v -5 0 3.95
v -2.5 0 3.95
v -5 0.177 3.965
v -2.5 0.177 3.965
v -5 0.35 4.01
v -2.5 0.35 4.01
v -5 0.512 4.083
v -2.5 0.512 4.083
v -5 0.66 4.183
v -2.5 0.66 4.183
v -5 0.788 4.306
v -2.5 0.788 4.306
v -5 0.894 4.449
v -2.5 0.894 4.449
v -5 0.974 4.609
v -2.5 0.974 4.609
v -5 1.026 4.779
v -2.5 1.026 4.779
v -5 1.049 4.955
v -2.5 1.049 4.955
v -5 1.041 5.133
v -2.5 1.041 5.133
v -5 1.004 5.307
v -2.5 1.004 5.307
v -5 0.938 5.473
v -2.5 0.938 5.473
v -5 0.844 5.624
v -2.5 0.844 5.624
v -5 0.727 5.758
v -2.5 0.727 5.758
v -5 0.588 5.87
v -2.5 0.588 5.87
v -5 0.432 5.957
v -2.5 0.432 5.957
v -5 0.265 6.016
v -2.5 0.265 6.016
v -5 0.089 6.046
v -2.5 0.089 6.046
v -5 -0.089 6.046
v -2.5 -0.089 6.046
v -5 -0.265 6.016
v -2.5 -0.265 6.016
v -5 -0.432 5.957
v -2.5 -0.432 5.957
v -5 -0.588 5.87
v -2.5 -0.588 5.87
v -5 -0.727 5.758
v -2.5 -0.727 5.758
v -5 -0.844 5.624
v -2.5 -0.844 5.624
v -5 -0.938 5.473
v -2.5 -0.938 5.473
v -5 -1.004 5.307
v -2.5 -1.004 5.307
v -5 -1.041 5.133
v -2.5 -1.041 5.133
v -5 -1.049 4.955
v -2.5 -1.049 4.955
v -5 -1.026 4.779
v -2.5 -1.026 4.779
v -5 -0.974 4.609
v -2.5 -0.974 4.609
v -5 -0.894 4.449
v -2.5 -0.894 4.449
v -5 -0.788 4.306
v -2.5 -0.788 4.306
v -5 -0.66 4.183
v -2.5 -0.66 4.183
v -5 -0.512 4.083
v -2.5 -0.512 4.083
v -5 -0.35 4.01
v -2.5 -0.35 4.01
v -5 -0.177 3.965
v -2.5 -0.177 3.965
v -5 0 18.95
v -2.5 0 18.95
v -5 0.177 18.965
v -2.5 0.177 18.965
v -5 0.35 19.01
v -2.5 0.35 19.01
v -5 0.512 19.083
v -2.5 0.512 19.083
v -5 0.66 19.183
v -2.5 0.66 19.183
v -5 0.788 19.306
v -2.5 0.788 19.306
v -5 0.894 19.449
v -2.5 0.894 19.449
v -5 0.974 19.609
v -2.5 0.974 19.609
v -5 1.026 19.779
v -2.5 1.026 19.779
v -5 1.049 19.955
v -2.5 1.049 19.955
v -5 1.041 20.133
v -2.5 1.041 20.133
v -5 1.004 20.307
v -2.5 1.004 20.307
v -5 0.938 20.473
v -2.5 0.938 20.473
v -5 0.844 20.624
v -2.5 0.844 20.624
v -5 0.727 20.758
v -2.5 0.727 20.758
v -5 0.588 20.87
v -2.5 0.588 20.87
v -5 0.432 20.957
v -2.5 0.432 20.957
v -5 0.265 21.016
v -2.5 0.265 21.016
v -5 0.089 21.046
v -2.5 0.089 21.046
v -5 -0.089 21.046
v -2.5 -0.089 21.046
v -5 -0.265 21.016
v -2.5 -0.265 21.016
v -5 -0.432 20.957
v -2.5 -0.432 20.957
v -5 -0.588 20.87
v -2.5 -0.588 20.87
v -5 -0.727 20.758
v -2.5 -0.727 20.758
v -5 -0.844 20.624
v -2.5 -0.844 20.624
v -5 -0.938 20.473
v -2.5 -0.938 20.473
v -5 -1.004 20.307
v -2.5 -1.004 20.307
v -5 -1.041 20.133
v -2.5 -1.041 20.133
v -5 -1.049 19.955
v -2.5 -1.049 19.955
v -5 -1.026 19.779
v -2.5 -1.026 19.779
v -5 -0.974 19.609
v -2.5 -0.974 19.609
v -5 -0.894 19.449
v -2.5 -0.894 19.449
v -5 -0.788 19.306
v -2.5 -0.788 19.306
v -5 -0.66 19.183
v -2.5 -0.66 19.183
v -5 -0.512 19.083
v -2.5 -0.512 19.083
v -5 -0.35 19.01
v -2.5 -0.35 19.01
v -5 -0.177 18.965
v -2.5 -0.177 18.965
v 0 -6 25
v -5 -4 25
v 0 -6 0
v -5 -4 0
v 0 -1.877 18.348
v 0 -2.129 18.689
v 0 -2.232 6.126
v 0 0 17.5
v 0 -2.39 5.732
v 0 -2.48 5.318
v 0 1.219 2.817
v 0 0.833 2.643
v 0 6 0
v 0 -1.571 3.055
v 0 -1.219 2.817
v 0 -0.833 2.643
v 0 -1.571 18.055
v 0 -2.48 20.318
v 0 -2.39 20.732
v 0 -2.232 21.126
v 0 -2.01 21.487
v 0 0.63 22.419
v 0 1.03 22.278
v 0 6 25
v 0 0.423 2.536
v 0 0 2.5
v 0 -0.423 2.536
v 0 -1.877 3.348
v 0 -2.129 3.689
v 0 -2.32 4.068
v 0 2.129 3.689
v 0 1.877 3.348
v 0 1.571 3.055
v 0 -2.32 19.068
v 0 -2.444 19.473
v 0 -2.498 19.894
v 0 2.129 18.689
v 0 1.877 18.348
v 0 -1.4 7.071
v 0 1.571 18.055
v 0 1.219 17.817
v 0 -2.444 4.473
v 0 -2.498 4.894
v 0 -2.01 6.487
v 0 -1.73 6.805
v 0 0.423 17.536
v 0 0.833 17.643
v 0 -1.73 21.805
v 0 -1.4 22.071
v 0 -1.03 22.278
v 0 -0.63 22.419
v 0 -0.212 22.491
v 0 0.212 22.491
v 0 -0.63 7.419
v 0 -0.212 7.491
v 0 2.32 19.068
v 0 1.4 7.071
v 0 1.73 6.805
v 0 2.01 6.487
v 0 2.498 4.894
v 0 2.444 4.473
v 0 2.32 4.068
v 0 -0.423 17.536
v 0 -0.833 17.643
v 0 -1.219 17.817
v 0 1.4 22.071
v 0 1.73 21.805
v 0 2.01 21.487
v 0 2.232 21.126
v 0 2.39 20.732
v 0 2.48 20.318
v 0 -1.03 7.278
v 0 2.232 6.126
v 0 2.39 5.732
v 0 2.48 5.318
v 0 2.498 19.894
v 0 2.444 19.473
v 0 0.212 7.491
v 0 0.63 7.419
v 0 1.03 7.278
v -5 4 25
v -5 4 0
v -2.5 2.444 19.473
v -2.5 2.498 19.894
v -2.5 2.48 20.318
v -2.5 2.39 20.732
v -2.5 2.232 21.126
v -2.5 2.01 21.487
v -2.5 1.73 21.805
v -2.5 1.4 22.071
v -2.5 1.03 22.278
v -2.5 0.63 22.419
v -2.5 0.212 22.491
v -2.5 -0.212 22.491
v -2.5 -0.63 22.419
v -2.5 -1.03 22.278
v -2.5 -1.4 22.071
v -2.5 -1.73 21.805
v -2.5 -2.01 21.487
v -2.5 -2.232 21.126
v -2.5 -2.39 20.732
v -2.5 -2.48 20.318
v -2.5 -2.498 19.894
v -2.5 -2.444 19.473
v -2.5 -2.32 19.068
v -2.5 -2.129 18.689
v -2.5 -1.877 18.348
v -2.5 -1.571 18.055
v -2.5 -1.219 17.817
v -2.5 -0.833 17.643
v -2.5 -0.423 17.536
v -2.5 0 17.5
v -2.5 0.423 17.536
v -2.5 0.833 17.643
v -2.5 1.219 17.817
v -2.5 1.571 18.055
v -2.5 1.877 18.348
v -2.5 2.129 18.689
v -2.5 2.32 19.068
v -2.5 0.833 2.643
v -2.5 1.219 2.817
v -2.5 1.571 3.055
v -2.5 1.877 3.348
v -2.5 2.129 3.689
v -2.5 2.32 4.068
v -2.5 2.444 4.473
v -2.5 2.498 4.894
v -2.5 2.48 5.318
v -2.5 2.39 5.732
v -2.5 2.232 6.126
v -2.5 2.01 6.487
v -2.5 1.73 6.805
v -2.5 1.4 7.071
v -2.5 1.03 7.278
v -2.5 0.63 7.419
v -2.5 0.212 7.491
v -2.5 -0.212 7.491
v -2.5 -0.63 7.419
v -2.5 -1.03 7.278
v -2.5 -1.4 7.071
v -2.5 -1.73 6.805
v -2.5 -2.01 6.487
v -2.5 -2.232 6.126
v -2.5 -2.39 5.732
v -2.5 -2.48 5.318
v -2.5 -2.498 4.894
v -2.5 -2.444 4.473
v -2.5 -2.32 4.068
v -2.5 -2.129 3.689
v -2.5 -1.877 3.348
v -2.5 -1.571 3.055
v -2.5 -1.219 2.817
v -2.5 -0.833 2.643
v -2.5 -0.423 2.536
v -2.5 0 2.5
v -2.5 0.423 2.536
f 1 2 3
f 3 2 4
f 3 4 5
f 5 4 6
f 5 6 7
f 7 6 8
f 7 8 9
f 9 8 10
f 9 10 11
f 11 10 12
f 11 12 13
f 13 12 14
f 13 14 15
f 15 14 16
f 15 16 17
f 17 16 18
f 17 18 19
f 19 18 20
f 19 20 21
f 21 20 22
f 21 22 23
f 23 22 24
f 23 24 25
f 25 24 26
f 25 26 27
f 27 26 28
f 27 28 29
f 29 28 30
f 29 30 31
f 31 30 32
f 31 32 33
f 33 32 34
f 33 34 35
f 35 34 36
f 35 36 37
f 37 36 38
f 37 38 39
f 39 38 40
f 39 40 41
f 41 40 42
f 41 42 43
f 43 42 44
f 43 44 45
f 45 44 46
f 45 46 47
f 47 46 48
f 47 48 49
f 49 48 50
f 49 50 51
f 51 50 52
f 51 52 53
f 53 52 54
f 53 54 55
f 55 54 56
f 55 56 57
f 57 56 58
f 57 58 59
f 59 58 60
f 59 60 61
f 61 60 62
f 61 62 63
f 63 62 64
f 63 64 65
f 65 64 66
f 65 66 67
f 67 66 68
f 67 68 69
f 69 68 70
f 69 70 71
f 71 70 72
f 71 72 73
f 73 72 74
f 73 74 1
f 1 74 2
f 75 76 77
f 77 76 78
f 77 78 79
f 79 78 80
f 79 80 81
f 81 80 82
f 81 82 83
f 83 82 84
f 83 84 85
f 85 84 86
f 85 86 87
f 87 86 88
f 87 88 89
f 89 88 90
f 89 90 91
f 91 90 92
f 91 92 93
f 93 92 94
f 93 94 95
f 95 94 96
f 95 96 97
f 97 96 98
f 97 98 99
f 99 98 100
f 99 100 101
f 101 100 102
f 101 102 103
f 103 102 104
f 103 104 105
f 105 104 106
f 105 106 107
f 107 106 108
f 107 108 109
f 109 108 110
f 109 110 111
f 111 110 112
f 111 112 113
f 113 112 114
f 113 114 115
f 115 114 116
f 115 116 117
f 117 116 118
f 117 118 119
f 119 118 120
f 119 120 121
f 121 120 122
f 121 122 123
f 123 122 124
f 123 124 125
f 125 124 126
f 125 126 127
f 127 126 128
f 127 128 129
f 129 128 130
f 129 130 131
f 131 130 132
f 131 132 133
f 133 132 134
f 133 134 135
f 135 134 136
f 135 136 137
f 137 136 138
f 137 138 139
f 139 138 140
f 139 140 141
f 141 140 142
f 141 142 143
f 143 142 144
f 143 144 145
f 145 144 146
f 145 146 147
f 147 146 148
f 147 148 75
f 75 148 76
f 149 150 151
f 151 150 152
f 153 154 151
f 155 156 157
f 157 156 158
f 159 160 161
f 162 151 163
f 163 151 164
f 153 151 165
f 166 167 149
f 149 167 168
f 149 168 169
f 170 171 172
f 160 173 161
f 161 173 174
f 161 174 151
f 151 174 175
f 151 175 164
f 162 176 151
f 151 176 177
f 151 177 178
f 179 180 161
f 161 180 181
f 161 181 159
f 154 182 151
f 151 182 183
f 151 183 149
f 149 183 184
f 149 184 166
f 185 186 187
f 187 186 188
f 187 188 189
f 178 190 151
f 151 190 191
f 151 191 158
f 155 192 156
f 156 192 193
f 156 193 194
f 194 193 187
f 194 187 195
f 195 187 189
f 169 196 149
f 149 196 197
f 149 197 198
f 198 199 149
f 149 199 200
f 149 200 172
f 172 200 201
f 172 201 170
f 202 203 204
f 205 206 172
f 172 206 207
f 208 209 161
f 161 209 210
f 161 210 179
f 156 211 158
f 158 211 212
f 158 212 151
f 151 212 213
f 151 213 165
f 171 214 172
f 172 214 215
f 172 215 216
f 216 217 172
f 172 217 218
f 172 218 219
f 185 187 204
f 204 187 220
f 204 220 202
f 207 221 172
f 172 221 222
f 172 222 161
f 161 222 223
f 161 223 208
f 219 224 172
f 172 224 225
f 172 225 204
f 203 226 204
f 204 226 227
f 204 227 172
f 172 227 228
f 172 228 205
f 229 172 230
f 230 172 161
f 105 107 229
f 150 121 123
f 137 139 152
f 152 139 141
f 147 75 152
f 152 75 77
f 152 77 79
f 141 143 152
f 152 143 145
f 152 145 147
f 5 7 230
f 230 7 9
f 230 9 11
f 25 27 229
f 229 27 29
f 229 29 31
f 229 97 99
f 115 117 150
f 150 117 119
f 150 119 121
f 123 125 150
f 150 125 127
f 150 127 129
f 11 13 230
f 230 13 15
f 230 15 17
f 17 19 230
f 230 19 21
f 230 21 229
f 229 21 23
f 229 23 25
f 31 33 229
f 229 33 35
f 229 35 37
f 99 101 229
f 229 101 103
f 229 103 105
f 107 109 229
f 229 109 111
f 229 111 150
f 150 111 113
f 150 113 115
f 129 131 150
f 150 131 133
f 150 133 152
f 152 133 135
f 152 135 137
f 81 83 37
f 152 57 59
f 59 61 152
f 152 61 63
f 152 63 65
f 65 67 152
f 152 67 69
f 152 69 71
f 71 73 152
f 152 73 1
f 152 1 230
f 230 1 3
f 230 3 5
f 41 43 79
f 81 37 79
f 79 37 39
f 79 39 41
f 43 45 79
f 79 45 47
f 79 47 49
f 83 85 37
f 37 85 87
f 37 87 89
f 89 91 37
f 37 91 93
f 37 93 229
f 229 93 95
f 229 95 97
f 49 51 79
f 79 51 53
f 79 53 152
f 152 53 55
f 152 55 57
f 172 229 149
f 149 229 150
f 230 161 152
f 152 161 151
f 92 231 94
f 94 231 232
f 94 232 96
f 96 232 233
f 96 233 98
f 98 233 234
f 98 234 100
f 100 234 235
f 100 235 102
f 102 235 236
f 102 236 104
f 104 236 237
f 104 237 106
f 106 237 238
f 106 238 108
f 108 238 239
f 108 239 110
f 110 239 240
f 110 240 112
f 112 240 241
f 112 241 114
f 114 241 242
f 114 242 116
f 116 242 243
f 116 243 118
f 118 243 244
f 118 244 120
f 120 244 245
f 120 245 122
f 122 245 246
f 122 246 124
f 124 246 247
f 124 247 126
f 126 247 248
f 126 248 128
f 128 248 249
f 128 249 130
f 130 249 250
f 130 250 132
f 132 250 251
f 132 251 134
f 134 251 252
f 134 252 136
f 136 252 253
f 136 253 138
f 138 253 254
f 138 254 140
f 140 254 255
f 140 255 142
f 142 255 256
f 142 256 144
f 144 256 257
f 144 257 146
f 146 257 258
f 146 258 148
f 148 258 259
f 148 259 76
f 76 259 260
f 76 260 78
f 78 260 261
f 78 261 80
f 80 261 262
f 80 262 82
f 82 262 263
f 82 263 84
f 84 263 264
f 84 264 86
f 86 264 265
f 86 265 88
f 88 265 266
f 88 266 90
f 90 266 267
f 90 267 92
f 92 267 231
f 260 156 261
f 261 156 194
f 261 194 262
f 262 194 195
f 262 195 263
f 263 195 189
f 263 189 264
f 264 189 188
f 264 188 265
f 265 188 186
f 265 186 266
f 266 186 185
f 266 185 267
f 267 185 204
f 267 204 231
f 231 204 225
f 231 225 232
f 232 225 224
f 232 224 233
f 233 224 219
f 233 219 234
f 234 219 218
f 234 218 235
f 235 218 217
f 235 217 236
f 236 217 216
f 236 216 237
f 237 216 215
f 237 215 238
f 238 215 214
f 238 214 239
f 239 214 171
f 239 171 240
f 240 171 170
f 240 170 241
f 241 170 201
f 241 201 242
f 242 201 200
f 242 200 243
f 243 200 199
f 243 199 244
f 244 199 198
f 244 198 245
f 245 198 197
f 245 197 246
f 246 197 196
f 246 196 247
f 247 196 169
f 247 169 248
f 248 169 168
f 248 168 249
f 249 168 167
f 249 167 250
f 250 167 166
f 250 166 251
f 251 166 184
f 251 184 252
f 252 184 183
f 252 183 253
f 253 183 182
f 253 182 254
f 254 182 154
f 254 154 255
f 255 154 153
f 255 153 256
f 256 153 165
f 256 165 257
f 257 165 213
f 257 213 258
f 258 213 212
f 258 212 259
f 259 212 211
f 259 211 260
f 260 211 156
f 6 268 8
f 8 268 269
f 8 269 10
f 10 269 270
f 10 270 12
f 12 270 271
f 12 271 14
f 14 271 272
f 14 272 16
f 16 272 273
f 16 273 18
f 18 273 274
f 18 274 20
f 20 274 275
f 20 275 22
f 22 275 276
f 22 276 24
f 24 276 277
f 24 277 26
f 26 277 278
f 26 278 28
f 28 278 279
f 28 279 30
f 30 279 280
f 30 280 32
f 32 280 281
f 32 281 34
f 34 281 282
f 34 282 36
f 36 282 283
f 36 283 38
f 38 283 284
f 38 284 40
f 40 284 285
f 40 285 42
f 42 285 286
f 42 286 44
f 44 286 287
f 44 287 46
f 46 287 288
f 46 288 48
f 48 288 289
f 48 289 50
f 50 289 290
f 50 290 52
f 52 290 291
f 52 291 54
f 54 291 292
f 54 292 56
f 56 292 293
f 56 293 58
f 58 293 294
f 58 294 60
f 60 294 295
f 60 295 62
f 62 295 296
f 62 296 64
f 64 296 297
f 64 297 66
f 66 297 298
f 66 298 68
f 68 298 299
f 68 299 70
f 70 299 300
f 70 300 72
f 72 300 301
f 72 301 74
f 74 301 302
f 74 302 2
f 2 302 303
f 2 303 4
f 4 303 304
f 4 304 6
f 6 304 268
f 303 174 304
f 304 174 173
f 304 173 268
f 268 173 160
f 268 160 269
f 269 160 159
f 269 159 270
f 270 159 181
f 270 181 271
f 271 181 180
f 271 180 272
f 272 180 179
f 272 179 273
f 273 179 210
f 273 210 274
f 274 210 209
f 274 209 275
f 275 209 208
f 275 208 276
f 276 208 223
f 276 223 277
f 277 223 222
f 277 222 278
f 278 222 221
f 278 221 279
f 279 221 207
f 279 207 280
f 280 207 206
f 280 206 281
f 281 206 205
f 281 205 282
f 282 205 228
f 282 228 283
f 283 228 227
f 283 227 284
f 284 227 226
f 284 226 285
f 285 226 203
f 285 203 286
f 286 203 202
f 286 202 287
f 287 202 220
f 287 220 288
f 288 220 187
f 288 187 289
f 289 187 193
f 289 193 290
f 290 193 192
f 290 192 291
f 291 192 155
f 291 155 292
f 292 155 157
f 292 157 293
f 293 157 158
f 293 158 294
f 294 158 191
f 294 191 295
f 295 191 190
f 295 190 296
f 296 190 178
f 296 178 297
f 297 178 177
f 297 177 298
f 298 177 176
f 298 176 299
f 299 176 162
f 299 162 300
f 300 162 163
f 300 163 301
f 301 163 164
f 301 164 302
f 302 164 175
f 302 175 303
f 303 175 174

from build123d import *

# Parameters (mm, degrees)
RESSALTO_EXTRUS_O1_DEPTH = 25
ESBO_O2_R                = 1.05
CORTE_EXTRUS_O1_DEPTH    = 20
ESBO_O3_R                = 2.5
CORTE_EXTRUS_O3_DEPTH    = 2.5


with BuildPart() as part:
    # Esboço1 → Ressalto-extrusão1 (new body)
    with BuildSketch(Plane(origin=(0, 0, 0), x_dir=(0, 1, 0), z_dir=(0, 0, 1))):
        Polygon((-6, 0), (6, 0), (4, 5), (-4, 5), align=None)
    extrude(amount=RESSALTO_EXTRUS_O1_DEPTH)

    # Esboço2 → Corte-extrusão1 (cut)
    with BuildSketch(Plane.YZ):
        with Locations(Location((0, 20, 0), (0, 0, 270))):
            Circle(ESBO_O2_R)
        with Locations(Location((0, 5, 0), (0, 0, 270))):
            Circle(ESBO_O2_R)
    extrude(amount=-CORTE_EXTRUS_O1_DEPTH, mode=Mode.SUBTRACT)

    # Esboço3 → Corte-extrusão3 (cut)
    with BuildSketch(Plane.YZ):
        with Locations(Location((0, 20, 0), (0, 0, 270))):
            Circle(ESBO_O3_R)
        with Locations(Location((0, 5, 0), (0, 0, 270))):
            Circle(ESBO_O3_R)
    extrude(amount=-CORTE_EXTRUS_O3_DEPTH, mode=Mode.SUBTRACT)


solid = part.part
